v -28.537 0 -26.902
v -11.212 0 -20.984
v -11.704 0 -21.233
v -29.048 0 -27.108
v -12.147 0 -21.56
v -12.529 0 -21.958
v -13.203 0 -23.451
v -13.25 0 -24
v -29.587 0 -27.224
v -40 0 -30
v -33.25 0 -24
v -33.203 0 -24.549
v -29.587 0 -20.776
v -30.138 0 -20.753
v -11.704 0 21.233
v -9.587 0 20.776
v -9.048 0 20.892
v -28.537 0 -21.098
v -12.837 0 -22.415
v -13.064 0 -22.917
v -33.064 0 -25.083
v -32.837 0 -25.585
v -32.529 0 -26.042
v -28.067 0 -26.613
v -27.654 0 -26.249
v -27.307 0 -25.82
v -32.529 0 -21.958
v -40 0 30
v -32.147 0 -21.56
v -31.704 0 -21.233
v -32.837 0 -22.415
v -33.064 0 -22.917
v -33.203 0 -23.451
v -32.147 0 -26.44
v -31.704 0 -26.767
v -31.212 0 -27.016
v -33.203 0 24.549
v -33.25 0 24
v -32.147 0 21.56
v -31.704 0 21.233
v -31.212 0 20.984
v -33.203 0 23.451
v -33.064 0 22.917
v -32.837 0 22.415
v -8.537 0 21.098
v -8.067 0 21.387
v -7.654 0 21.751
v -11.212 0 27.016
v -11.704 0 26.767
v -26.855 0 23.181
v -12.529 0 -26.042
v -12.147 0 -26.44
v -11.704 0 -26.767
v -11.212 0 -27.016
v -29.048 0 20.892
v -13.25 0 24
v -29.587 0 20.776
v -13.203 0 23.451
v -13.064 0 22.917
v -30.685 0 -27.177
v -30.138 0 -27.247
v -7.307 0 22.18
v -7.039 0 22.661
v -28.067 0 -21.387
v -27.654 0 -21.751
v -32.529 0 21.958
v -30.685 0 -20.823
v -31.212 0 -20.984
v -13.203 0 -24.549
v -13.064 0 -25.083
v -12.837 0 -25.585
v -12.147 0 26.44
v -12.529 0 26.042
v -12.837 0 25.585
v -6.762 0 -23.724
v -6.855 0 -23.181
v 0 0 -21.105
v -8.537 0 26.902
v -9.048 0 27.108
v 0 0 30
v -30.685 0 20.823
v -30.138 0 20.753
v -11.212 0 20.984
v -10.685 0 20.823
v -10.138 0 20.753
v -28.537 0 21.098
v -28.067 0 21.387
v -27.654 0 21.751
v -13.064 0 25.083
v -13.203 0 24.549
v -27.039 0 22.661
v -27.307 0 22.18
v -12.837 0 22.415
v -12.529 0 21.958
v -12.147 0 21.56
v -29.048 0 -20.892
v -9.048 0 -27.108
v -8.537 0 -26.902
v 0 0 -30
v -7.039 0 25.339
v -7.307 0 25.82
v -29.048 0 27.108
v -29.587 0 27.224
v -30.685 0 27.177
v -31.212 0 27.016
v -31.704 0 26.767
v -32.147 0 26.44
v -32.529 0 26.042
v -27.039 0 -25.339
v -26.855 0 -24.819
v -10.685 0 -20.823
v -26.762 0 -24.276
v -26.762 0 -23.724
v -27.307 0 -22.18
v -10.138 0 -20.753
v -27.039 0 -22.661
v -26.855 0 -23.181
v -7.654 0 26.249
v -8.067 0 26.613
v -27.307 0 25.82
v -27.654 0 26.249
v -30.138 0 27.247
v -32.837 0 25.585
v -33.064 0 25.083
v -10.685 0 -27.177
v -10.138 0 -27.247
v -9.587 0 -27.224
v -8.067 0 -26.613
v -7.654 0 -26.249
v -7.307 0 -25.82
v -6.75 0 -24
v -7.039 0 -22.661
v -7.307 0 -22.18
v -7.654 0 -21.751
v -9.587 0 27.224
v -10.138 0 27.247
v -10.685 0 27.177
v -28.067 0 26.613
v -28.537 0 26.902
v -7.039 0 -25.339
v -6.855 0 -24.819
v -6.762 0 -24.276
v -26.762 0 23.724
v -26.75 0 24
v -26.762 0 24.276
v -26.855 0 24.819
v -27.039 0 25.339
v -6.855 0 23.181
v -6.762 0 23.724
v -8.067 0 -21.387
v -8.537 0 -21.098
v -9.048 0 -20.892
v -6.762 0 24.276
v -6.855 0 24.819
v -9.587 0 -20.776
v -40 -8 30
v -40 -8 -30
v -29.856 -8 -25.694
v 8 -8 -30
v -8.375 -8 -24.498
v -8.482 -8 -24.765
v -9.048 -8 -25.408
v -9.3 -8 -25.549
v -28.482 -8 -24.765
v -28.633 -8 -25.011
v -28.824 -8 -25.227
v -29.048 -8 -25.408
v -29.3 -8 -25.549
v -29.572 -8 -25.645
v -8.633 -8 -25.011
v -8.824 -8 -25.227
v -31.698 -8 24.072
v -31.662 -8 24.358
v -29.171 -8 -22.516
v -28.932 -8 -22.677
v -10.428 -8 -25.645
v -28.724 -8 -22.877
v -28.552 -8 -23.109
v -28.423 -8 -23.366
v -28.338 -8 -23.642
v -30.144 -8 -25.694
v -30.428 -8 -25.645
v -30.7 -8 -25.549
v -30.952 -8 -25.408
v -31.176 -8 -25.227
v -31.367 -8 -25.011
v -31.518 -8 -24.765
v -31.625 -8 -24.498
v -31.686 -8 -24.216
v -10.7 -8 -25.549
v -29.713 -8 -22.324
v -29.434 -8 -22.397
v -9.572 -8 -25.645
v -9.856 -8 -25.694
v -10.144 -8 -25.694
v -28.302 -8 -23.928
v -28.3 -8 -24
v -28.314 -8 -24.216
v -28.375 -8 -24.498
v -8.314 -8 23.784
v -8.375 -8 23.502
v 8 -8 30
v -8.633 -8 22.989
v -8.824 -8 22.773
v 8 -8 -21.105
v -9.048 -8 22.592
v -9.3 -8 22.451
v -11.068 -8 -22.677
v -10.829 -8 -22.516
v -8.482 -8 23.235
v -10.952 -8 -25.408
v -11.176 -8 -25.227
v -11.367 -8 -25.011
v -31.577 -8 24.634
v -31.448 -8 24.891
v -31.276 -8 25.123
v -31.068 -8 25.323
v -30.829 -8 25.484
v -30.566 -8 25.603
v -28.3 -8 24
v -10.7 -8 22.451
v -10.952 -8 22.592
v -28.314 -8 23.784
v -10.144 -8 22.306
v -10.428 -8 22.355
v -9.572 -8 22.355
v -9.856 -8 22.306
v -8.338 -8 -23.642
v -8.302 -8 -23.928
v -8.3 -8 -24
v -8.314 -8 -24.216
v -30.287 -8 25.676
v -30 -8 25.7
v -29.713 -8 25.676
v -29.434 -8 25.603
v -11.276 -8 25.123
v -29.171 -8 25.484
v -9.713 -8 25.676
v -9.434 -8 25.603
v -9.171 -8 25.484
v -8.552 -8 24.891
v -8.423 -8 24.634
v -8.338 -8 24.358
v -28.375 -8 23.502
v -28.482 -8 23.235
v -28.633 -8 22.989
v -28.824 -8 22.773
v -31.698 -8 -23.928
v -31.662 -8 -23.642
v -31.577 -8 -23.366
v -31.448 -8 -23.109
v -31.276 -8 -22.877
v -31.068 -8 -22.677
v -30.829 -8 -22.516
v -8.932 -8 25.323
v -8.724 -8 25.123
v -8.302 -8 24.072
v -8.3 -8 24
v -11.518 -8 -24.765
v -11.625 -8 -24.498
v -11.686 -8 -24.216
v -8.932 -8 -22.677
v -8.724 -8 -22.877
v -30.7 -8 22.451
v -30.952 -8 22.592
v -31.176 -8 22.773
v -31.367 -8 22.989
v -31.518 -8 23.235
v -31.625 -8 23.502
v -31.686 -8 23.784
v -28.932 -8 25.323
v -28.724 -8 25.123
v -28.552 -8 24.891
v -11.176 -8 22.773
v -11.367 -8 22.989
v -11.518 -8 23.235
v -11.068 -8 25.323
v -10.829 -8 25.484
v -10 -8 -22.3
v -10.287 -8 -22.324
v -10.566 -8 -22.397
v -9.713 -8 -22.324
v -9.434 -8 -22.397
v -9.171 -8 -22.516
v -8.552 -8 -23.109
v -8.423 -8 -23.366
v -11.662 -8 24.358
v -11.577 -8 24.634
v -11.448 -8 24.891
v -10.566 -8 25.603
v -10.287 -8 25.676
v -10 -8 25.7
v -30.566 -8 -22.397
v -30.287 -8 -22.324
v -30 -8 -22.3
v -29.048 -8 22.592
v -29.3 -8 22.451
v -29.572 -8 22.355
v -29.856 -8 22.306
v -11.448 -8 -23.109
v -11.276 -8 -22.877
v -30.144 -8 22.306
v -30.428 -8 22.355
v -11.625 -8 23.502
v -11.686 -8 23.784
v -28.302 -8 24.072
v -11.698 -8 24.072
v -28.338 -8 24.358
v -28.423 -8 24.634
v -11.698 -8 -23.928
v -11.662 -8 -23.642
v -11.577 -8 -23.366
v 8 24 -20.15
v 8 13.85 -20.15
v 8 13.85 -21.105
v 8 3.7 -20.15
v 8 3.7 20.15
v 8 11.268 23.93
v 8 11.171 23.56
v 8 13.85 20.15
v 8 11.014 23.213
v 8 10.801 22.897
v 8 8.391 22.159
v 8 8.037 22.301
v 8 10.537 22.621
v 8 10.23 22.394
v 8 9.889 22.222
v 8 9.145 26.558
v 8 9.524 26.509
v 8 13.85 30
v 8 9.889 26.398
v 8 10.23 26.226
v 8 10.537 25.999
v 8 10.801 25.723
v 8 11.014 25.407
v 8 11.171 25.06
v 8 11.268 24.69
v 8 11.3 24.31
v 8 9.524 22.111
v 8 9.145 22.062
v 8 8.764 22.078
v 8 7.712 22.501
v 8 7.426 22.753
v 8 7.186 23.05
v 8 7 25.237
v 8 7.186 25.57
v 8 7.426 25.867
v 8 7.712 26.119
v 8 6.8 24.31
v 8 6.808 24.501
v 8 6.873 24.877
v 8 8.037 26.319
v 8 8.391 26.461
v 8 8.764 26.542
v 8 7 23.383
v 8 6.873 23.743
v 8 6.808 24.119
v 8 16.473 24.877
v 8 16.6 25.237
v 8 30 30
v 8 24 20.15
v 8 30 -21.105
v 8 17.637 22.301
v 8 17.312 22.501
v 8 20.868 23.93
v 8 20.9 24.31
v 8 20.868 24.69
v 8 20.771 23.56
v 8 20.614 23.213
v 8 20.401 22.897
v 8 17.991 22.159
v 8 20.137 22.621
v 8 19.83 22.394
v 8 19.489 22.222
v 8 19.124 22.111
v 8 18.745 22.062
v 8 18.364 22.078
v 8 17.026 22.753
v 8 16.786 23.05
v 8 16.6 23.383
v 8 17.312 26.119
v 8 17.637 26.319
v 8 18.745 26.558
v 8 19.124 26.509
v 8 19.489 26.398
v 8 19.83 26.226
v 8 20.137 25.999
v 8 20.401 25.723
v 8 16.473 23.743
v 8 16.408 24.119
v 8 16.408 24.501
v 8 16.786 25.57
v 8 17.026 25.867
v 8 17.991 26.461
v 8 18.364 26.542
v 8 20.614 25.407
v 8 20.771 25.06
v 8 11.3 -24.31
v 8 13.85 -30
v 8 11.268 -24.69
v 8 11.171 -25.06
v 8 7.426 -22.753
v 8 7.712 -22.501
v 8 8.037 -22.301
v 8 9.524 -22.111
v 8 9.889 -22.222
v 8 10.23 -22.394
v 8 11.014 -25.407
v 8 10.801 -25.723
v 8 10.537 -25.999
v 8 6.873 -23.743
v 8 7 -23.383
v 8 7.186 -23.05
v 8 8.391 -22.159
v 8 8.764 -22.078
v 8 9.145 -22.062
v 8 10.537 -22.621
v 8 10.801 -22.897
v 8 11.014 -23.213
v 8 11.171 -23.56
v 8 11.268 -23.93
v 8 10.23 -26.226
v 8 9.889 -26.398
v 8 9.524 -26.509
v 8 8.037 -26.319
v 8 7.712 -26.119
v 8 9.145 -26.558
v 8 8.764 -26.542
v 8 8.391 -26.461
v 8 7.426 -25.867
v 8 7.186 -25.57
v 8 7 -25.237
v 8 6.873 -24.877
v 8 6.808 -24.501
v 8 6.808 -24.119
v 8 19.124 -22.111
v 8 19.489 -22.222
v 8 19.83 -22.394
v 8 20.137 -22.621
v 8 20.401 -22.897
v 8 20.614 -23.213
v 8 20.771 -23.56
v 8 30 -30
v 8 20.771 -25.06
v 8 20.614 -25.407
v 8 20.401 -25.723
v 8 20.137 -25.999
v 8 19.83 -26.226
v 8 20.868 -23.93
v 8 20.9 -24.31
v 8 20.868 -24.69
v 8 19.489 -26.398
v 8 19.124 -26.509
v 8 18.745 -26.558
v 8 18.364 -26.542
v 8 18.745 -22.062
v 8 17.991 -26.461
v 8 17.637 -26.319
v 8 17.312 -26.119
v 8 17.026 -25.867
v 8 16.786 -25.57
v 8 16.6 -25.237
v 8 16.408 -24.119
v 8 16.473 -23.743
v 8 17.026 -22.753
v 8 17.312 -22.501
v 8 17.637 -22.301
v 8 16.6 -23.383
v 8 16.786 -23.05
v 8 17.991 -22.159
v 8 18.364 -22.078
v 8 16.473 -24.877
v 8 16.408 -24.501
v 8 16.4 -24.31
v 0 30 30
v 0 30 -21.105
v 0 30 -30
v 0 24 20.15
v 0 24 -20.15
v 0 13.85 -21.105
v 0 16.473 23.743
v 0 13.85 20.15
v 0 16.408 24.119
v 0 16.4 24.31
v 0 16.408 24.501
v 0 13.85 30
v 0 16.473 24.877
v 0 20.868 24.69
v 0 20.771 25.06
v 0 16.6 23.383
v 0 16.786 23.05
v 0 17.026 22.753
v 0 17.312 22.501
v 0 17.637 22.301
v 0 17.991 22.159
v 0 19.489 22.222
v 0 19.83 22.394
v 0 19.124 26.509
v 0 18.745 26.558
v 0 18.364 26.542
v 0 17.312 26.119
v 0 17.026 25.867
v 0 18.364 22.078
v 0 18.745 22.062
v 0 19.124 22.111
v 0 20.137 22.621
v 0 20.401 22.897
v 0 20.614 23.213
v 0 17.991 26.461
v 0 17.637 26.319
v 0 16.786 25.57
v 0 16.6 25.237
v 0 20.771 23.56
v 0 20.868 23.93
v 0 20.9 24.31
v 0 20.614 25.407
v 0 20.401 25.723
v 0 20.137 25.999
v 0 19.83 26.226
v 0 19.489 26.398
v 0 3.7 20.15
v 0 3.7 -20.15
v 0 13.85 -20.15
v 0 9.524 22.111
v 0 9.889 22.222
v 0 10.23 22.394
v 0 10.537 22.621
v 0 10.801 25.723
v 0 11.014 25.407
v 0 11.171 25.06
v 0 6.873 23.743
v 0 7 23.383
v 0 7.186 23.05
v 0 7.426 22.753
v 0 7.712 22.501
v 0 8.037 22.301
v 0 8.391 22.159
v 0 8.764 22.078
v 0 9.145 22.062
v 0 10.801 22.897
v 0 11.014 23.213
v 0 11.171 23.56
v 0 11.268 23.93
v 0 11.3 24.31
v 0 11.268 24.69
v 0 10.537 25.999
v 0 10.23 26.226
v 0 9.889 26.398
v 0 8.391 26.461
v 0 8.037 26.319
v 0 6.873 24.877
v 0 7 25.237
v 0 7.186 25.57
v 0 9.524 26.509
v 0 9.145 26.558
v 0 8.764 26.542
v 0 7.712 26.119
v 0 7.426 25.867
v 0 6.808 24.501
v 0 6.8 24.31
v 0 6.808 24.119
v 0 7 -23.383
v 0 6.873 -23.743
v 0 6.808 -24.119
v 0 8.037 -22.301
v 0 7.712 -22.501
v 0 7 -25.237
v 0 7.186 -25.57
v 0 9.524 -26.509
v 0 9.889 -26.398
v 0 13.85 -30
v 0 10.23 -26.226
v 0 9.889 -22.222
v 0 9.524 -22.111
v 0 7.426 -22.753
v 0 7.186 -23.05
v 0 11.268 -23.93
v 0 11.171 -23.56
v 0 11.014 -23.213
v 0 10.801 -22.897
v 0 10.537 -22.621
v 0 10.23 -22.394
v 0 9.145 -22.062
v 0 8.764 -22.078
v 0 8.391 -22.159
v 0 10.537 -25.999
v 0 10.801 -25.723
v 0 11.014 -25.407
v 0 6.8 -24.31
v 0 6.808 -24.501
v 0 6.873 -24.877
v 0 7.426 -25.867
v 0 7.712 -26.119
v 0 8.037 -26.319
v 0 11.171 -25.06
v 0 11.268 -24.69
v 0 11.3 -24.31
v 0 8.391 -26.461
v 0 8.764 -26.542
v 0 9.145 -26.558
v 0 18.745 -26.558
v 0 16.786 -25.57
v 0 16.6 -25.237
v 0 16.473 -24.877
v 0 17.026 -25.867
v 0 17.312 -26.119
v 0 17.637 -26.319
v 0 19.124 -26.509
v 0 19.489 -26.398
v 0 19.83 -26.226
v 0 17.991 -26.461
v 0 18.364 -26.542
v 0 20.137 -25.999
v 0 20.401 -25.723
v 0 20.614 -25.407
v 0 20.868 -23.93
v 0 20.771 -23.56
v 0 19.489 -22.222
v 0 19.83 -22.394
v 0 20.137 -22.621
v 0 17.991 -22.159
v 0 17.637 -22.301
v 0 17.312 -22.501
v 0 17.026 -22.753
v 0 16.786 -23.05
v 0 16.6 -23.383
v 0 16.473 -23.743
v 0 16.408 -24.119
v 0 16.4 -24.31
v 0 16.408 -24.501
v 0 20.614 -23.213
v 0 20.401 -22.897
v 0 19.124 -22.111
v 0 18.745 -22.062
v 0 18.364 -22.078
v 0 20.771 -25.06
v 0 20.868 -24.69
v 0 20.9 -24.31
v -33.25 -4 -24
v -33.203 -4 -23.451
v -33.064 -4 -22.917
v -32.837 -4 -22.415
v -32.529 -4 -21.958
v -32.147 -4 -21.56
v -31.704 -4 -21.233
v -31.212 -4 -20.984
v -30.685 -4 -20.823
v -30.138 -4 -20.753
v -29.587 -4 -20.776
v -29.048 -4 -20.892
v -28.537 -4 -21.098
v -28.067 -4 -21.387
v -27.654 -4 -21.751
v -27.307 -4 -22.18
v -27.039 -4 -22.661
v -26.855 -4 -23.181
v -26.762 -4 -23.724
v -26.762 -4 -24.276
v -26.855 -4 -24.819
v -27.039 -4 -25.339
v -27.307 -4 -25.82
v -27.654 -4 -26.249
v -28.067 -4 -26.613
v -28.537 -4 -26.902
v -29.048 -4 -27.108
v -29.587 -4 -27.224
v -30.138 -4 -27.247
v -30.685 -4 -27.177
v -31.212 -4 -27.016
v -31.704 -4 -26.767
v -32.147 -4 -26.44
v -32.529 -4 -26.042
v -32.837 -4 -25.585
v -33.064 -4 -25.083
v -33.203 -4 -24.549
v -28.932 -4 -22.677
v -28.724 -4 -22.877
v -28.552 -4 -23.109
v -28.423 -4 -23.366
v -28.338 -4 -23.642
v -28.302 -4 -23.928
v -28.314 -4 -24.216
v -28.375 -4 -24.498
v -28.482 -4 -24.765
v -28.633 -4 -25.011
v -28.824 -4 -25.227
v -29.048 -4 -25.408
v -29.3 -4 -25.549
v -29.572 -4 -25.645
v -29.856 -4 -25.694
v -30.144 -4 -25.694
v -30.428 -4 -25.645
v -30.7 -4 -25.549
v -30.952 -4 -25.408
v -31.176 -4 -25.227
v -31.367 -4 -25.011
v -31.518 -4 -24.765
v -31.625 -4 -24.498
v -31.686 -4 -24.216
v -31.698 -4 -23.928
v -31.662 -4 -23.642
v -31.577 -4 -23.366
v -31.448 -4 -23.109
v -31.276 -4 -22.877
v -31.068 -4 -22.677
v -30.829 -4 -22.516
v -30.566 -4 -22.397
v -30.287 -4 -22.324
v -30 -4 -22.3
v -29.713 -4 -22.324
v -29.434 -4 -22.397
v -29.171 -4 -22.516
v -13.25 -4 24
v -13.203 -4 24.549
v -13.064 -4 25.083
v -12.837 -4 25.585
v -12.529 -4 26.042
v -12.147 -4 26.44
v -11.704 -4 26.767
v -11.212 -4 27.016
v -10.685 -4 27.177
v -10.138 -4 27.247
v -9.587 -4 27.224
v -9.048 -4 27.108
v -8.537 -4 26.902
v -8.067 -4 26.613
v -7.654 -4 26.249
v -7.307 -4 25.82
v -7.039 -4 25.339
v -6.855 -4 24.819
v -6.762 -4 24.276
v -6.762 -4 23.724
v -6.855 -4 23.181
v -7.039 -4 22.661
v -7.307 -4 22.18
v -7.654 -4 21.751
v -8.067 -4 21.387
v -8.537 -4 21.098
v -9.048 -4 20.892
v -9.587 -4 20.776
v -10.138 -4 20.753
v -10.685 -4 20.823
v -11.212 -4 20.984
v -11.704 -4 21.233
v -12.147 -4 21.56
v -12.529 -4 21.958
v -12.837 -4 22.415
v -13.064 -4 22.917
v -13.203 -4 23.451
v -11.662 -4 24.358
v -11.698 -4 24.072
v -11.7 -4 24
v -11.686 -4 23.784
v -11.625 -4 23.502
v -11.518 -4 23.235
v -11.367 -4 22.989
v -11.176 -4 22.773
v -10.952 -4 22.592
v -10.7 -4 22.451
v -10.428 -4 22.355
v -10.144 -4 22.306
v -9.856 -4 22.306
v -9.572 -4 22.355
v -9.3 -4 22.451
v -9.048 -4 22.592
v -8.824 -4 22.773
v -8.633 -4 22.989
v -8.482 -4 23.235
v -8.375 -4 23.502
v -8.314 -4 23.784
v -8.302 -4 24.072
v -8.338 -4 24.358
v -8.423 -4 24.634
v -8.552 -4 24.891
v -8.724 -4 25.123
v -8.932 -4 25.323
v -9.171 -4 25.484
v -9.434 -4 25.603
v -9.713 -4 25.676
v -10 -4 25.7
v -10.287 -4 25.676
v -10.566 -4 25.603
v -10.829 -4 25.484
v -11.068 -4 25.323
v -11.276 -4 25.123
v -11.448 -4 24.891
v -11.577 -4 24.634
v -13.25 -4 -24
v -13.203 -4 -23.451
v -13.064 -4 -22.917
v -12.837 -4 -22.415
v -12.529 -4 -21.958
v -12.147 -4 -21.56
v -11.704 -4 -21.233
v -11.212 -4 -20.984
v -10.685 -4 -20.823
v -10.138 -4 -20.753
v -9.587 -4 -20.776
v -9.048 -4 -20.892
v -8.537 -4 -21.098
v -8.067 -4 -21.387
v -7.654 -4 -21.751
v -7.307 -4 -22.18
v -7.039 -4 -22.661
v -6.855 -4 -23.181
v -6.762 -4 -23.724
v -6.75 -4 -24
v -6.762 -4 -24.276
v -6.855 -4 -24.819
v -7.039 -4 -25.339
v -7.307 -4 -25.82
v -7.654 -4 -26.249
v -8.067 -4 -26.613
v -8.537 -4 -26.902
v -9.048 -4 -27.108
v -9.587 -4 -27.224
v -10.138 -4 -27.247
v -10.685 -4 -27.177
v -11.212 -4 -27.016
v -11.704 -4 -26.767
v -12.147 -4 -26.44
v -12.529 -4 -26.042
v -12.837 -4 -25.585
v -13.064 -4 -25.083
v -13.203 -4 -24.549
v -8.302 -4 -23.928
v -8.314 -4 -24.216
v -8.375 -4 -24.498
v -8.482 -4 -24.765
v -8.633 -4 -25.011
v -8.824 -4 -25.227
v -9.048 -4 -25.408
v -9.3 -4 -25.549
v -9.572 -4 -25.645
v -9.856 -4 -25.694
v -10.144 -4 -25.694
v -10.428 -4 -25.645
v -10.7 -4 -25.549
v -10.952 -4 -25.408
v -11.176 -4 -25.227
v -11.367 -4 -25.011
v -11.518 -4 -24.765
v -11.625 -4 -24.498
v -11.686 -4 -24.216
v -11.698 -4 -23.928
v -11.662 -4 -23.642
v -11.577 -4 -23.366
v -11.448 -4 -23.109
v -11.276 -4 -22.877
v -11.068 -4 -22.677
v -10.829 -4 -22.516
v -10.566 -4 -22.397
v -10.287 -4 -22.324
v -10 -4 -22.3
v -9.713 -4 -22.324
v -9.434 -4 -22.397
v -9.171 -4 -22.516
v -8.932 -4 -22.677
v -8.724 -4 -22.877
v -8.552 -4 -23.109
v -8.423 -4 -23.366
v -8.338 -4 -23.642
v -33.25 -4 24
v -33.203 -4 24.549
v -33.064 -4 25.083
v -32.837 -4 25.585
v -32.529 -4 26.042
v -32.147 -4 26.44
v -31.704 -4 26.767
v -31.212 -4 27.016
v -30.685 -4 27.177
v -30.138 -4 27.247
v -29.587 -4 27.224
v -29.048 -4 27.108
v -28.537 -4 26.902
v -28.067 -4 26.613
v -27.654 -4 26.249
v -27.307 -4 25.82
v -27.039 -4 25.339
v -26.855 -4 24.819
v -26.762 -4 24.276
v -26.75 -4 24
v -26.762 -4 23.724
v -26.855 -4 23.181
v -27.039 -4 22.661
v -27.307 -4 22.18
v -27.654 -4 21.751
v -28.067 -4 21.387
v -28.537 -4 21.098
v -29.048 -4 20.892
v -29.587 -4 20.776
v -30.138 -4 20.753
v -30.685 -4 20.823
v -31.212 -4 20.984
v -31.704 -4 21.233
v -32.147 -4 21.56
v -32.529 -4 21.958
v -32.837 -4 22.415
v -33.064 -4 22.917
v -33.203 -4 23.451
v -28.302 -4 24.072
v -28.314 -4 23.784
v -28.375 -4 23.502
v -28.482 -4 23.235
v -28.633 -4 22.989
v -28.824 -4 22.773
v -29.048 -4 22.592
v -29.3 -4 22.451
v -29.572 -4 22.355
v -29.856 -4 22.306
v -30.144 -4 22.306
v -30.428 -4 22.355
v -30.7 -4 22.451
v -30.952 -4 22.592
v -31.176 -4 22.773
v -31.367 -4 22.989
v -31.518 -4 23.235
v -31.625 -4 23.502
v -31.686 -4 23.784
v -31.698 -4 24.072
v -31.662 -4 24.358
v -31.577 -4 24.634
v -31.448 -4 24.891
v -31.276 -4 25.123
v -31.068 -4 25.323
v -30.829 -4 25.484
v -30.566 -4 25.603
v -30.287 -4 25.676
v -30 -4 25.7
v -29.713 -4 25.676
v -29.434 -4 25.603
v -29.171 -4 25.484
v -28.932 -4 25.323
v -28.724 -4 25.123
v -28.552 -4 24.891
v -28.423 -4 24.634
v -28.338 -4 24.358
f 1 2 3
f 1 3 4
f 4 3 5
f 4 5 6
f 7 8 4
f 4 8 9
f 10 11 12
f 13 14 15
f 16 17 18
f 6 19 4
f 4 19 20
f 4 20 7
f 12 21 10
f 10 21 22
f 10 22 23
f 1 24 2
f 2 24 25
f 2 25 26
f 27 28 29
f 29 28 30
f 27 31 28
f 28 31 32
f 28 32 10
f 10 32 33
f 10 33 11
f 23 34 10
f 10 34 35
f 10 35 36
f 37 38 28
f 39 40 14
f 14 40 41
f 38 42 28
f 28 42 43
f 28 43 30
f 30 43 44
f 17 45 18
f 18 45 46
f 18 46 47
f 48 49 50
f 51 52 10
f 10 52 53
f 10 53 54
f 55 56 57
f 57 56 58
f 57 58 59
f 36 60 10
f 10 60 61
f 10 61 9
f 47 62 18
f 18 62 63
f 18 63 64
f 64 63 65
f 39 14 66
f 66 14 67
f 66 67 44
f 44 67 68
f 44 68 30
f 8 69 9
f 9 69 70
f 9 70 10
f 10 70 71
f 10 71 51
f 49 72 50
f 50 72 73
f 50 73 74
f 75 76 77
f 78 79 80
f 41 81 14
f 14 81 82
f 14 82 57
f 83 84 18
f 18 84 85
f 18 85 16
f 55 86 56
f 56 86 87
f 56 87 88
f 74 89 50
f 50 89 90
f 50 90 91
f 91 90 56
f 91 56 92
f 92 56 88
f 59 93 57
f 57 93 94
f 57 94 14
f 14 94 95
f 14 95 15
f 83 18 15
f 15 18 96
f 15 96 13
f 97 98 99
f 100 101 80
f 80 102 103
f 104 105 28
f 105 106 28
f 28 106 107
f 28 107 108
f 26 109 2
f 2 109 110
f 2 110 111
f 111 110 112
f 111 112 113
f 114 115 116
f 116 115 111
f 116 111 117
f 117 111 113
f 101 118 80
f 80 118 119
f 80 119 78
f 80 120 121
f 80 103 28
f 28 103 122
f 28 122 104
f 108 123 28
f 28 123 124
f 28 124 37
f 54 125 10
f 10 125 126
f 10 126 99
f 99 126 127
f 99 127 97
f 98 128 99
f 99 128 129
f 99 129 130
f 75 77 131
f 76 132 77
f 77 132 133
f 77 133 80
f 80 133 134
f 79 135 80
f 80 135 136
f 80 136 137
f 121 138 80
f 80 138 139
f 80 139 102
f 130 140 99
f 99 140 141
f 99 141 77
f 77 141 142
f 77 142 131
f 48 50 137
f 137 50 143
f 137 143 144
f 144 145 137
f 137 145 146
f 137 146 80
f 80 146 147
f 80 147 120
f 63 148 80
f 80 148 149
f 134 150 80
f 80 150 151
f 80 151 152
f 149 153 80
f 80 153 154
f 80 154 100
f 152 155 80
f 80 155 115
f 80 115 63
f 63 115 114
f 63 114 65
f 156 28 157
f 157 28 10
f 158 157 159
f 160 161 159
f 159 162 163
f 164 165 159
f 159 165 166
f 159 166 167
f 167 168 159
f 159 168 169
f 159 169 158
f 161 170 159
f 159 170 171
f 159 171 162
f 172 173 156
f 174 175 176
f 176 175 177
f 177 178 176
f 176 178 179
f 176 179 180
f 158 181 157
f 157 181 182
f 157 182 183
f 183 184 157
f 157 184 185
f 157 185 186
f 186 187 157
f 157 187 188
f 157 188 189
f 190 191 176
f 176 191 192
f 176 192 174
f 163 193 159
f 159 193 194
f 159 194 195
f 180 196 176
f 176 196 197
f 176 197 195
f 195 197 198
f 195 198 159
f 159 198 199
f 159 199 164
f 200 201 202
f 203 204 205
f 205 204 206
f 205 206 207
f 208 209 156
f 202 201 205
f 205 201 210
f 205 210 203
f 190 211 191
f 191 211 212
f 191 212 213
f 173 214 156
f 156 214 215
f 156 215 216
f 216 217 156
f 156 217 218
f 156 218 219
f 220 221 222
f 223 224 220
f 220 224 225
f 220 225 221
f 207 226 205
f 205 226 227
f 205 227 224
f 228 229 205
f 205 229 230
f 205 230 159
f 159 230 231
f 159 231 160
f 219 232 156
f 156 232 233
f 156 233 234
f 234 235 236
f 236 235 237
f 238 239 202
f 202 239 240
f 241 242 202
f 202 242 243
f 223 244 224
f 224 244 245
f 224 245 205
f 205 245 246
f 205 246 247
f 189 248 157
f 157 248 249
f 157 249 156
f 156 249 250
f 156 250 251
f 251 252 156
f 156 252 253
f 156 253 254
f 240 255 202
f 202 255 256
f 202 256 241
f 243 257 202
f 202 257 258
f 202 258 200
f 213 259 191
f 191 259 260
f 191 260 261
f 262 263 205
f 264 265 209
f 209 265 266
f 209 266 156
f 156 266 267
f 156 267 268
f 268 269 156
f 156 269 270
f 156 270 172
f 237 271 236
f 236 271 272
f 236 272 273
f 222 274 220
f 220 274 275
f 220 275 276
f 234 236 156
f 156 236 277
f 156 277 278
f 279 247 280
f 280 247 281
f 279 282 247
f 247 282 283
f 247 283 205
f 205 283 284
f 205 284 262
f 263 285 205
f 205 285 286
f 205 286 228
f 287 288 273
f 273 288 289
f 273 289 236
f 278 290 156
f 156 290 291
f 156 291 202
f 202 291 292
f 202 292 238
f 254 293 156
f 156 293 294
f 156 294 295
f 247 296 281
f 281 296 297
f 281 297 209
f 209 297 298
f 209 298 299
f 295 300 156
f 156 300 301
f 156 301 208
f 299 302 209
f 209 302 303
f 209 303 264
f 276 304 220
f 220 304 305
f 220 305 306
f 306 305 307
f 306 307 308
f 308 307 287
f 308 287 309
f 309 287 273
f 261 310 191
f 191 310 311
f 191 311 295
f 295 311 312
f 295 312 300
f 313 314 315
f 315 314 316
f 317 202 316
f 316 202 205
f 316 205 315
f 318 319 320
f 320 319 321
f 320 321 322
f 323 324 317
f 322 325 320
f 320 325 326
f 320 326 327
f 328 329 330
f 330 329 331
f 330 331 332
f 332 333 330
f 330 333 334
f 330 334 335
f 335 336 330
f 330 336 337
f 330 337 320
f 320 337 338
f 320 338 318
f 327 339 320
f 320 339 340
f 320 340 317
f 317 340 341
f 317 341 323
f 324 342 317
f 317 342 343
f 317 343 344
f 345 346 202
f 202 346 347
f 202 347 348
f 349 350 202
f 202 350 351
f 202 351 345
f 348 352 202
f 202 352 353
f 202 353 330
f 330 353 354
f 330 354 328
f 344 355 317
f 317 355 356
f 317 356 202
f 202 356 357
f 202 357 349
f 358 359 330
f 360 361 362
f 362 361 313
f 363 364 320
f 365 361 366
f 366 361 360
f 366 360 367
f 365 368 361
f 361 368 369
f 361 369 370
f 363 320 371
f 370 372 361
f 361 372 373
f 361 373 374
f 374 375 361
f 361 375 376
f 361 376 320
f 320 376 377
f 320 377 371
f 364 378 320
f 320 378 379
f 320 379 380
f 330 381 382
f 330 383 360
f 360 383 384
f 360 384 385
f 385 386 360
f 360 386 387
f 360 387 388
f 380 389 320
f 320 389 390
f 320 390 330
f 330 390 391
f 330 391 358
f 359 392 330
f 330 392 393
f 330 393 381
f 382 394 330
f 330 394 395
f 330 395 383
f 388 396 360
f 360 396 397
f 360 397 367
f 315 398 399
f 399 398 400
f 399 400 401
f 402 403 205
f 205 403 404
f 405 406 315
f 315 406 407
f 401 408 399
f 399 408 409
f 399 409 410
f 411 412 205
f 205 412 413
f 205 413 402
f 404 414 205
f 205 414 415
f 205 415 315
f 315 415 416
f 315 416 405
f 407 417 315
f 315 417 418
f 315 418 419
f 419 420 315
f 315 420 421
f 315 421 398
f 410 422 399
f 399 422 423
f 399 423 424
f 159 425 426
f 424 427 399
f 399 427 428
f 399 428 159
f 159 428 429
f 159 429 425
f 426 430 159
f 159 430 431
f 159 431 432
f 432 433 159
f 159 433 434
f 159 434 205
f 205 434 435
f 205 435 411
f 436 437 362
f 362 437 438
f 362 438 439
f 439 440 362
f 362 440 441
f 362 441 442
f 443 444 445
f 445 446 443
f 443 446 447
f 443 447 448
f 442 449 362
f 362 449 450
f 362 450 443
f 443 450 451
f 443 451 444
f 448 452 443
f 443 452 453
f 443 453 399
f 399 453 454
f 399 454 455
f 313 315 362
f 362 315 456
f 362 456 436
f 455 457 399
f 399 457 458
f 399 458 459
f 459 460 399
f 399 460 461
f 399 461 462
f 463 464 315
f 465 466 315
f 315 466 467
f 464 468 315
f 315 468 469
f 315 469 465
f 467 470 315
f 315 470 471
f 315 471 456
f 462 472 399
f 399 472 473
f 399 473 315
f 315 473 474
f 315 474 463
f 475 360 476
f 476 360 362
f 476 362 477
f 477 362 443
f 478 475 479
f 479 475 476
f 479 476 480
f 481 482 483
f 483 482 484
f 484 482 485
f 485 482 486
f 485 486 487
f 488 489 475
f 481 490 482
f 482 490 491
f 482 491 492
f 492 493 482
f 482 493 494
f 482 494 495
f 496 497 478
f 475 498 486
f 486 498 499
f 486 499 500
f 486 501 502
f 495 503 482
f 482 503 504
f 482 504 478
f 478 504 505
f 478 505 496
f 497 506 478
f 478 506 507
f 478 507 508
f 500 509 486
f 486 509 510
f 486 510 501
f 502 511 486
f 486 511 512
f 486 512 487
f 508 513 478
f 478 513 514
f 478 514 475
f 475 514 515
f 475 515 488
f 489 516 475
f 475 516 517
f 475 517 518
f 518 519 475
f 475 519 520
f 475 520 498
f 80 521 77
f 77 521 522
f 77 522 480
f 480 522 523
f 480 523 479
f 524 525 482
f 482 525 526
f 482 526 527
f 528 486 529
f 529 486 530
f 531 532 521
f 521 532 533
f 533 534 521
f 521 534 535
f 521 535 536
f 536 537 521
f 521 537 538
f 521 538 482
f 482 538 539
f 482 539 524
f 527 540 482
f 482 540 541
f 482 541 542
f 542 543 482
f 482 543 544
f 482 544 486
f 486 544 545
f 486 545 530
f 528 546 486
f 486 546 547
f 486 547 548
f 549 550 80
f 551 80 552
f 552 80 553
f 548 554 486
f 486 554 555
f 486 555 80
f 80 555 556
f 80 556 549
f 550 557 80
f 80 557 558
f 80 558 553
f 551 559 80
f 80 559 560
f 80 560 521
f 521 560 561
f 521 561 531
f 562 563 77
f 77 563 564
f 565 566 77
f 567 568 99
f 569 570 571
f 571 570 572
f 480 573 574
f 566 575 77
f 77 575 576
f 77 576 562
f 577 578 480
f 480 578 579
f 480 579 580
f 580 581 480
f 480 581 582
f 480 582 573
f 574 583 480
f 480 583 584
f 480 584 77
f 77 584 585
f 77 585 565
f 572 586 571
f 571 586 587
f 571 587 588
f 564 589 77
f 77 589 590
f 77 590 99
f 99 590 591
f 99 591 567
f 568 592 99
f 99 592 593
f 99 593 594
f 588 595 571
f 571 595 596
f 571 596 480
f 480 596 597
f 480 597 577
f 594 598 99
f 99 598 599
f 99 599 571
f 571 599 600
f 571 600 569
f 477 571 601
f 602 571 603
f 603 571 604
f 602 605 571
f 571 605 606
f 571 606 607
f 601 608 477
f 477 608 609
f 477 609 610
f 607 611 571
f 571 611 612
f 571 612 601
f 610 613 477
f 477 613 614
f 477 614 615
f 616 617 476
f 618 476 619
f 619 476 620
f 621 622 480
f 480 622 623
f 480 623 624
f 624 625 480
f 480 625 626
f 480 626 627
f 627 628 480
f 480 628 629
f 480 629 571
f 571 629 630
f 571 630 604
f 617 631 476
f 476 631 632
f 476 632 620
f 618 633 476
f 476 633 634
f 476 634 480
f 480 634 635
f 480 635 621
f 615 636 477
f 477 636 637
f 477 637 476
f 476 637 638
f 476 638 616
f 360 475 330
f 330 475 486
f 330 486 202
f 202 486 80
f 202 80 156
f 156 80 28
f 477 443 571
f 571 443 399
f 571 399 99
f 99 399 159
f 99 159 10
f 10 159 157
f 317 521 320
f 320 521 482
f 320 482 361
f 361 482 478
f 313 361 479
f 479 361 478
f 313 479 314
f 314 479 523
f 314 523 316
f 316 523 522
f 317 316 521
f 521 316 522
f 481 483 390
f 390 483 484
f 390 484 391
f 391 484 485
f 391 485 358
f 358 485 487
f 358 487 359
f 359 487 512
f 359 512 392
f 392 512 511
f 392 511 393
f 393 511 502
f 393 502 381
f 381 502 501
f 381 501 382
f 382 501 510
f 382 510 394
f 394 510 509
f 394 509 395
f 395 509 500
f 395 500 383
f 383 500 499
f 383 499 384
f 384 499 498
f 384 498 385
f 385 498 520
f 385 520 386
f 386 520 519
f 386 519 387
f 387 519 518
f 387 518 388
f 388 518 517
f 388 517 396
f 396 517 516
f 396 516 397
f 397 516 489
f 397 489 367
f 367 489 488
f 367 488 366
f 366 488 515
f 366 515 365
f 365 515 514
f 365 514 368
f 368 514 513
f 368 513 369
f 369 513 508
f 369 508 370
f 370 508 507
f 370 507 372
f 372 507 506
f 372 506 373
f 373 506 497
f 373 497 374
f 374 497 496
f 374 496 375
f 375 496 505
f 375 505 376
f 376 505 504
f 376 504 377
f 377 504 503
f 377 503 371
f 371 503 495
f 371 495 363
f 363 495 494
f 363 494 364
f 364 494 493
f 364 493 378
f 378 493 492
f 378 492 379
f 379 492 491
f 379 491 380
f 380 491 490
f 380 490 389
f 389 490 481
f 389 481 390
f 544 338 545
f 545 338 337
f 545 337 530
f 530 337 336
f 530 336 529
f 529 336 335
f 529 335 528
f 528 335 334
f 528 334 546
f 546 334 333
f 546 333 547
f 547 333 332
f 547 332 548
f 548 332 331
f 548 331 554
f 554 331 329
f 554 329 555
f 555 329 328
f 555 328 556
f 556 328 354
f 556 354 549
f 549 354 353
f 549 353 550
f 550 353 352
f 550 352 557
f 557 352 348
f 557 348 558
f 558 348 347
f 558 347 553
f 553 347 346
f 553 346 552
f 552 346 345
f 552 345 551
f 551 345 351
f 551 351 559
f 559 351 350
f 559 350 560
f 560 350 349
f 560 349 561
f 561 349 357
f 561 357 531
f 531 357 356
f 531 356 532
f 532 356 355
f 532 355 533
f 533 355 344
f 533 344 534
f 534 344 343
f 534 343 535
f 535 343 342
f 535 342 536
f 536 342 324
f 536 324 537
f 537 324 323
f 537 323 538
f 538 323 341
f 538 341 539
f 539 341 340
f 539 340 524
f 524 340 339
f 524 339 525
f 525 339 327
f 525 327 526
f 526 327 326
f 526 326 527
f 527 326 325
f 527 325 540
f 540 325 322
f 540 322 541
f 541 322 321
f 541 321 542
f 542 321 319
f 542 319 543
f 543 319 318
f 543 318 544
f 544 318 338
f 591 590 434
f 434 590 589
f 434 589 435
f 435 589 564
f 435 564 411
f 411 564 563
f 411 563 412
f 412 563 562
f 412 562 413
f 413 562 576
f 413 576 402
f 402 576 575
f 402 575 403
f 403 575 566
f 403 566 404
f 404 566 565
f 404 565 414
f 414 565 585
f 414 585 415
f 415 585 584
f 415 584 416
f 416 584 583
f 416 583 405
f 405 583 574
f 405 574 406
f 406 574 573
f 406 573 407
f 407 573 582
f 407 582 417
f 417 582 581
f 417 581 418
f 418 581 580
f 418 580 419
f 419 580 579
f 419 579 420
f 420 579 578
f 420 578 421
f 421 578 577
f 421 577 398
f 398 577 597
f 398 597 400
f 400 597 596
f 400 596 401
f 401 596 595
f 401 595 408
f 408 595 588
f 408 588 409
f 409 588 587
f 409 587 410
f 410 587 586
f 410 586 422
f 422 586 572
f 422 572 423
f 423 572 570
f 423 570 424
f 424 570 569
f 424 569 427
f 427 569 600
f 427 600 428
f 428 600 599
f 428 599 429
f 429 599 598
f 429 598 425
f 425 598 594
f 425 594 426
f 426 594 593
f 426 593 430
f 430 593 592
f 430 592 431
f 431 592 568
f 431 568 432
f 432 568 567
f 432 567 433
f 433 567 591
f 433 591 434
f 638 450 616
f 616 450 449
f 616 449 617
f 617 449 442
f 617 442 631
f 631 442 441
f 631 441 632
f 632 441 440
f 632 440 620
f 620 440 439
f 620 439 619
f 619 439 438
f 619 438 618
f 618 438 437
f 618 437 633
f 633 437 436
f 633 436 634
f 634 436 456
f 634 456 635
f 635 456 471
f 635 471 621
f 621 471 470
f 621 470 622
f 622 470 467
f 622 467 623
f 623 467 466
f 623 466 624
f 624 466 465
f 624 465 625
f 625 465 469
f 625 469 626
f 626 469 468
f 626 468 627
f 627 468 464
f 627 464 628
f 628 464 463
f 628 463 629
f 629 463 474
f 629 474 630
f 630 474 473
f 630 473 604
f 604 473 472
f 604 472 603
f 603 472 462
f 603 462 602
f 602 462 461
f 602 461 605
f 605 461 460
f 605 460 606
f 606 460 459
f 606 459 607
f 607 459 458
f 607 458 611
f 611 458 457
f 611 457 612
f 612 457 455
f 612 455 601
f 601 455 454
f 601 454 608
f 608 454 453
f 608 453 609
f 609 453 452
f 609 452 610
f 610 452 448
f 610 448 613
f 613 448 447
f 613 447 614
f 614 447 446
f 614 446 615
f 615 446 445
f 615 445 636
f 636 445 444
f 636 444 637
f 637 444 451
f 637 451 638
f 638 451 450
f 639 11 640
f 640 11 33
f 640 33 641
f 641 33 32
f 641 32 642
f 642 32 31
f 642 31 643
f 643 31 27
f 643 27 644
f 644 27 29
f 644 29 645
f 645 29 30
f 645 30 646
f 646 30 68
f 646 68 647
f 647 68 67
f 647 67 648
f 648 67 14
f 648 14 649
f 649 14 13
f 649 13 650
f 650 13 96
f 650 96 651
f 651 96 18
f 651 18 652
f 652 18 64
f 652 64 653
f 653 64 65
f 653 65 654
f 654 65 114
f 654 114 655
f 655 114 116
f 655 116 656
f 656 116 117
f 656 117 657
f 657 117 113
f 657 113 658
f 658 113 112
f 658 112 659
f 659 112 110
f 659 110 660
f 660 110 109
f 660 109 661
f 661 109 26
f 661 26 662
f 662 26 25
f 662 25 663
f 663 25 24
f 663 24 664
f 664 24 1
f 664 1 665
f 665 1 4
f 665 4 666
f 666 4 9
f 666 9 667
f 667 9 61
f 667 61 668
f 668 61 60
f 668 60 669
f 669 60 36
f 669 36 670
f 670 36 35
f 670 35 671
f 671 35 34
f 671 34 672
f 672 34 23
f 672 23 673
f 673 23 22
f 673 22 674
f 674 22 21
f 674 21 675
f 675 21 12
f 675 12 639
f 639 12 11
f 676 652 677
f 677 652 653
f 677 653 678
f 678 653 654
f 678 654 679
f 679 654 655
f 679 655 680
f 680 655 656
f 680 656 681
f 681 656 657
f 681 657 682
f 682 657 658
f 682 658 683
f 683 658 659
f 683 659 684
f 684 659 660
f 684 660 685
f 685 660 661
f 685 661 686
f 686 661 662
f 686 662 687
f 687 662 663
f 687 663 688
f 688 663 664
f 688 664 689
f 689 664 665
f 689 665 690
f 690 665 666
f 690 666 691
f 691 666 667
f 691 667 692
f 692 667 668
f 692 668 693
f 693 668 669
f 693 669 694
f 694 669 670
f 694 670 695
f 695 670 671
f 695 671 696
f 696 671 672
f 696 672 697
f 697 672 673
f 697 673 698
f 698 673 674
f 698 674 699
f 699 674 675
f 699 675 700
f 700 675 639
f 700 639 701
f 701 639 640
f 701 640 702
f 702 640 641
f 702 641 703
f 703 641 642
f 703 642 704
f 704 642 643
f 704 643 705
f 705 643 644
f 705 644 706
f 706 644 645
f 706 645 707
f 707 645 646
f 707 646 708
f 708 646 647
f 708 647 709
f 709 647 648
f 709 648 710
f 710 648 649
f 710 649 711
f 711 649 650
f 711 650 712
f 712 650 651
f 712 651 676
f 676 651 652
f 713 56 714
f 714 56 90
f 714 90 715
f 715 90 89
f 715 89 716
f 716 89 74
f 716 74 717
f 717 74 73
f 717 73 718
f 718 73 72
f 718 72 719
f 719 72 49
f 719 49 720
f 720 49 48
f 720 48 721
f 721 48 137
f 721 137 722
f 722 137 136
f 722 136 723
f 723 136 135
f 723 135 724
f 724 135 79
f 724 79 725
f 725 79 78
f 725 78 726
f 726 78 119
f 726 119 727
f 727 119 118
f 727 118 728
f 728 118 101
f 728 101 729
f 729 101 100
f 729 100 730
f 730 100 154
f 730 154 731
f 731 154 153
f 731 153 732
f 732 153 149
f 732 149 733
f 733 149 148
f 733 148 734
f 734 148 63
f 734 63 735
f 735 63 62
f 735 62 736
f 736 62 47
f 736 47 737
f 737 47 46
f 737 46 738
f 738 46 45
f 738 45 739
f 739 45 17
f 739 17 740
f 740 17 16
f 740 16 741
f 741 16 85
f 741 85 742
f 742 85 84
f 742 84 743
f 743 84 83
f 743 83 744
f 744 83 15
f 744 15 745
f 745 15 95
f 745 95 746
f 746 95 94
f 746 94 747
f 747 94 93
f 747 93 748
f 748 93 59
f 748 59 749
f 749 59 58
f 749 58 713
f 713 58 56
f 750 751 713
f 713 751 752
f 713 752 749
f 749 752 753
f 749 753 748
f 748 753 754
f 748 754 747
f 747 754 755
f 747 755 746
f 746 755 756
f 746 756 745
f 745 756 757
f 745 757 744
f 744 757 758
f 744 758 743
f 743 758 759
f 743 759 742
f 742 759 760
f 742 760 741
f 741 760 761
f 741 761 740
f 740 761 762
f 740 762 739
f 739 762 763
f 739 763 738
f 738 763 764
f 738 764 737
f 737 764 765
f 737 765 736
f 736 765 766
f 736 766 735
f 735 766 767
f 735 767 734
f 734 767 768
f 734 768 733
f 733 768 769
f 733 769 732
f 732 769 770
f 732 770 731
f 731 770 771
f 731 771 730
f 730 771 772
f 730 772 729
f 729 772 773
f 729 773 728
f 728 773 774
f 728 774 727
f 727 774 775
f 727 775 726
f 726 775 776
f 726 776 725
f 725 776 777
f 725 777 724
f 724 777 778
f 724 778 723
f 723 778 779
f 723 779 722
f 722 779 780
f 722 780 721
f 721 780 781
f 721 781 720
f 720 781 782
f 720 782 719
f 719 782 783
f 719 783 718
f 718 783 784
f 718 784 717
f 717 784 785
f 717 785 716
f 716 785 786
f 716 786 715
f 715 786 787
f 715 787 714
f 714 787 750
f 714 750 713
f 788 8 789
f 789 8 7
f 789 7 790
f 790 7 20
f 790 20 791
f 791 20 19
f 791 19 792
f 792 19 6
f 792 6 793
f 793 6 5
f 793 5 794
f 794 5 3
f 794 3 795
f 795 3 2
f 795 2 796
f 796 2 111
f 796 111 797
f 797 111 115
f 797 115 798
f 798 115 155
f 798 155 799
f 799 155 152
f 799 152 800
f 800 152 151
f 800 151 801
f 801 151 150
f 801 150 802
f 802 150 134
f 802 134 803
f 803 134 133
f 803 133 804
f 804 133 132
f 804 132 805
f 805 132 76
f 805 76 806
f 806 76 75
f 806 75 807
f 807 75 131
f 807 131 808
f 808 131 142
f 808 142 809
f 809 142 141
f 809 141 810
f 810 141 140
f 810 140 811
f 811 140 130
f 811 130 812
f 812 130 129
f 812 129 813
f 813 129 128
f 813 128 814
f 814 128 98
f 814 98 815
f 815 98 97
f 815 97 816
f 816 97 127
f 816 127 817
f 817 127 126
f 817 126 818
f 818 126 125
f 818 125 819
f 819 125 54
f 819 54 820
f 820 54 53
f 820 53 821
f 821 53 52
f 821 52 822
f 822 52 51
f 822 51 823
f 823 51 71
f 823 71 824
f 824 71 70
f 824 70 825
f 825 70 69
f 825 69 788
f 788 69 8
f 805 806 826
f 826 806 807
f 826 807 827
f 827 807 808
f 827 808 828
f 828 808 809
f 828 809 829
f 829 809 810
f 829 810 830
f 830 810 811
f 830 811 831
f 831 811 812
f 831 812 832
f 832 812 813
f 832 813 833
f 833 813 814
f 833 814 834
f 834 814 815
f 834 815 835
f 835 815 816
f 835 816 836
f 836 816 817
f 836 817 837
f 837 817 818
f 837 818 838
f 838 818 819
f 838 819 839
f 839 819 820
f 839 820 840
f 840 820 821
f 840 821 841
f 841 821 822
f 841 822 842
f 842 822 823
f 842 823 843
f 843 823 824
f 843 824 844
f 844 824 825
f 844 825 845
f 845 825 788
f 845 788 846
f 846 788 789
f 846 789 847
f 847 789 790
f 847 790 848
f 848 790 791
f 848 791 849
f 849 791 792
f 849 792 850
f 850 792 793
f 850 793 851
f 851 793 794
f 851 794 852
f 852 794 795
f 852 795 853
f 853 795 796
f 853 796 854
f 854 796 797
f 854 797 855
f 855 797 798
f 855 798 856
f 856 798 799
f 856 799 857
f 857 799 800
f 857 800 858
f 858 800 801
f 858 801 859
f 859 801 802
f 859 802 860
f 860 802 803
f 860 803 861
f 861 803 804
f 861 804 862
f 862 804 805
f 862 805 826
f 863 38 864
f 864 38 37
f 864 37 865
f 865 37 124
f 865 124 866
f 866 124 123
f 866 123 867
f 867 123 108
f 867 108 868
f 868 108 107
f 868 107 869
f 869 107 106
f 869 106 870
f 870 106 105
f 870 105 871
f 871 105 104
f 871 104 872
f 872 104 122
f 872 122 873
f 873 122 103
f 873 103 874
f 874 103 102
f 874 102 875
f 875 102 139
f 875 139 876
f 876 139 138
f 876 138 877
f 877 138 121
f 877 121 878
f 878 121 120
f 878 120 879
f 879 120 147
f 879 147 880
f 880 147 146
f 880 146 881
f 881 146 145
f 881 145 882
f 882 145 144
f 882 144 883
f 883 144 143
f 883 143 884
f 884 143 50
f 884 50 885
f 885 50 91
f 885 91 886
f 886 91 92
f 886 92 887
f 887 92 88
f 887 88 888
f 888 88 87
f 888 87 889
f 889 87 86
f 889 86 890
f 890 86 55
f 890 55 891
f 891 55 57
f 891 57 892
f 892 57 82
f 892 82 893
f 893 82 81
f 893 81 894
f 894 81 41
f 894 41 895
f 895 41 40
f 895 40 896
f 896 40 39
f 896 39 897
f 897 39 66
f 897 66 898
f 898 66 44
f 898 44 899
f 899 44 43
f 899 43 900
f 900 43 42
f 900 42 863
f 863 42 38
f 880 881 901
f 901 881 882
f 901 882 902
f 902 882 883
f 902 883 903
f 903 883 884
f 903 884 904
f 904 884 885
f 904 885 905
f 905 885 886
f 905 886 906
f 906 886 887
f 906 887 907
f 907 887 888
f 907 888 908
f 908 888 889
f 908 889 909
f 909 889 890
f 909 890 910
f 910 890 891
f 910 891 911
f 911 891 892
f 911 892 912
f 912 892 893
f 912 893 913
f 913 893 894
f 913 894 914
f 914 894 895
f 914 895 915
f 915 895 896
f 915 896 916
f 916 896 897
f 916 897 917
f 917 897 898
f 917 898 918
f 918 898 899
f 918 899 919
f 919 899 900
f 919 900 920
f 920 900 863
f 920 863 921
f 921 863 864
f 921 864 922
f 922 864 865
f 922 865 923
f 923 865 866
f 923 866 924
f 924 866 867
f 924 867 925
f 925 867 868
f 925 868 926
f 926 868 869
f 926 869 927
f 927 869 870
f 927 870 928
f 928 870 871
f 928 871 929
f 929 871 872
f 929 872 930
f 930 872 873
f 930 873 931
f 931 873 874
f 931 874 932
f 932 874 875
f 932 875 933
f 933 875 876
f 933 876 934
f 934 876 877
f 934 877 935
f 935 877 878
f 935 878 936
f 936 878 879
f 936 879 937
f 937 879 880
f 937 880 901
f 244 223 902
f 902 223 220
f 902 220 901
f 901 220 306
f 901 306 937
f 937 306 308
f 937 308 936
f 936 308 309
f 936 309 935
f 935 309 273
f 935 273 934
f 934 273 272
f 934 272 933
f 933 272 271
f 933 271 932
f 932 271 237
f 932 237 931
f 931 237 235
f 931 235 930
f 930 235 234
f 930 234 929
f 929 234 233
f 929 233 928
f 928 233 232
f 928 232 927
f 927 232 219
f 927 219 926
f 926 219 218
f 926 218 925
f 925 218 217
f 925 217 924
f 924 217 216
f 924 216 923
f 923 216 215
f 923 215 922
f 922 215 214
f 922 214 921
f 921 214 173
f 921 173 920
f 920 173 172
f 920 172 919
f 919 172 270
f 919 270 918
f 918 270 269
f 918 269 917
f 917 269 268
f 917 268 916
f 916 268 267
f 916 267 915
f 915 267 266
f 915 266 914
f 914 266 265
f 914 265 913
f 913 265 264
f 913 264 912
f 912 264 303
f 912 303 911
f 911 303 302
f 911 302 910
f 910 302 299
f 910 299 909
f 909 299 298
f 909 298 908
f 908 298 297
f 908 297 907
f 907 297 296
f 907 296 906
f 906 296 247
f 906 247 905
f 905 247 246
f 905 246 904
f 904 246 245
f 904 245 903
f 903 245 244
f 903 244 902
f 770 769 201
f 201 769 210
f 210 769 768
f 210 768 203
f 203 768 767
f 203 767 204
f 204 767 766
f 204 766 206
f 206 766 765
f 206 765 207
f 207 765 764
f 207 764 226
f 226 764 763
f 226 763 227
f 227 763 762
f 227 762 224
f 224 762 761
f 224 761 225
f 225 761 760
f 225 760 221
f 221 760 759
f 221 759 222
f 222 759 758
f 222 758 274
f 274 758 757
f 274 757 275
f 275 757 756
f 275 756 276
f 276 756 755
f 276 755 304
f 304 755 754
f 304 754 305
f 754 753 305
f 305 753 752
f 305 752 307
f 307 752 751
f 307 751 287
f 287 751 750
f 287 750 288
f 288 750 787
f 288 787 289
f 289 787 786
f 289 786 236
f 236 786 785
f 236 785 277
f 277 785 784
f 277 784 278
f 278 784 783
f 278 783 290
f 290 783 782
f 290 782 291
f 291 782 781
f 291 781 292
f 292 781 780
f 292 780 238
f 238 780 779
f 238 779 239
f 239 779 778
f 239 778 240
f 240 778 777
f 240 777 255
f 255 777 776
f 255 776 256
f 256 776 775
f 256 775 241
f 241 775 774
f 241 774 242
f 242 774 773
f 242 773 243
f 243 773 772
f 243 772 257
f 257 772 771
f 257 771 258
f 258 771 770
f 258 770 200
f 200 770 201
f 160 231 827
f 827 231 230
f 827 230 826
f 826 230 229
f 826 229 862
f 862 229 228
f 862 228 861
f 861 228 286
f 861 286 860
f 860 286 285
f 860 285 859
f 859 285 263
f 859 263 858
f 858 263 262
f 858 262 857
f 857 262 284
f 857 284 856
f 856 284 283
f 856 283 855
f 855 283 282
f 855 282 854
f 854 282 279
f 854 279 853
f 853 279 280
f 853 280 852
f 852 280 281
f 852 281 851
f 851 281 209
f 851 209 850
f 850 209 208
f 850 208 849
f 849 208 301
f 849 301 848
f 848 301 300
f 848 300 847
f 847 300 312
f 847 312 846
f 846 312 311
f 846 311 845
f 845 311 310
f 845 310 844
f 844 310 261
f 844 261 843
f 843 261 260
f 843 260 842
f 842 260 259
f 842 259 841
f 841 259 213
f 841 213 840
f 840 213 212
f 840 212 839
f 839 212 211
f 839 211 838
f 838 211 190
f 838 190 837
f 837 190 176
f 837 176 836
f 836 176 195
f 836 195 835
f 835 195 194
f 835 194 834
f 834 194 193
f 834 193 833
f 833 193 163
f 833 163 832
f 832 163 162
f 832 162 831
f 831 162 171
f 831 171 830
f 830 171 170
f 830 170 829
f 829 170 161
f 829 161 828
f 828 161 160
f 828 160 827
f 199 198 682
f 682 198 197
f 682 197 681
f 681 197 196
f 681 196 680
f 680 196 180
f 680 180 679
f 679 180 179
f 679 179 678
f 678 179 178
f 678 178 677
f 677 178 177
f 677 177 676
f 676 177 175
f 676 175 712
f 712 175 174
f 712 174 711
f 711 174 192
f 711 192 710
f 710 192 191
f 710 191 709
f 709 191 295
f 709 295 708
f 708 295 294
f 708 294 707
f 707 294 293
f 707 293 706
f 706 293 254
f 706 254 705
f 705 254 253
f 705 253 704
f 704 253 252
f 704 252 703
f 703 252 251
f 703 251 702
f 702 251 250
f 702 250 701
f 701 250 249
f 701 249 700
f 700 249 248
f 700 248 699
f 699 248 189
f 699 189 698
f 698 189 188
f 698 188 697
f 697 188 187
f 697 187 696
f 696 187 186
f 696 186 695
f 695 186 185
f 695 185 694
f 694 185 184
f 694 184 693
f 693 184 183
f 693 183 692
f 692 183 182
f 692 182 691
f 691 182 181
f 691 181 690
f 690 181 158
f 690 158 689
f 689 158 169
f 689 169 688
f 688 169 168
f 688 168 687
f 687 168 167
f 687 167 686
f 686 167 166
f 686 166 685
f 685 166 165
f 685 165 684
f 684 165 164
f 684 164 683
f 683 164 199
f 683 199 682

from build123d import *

# Parameters (mm, degrees)
CROQUIS1_W                                 = 40
CROQUIS1_H                                 = 8
SALIENTE_EXTRUIR1_DEPTH                    = 30
CROQUIS2_W                                 = 40.3
CROQUIS2_H                                 = 20.3
CORTAR_EXTRUIR1_DEPTH                      = 60
CROQUIS3_R                                 = 2.25
CROQUIS3_W                                 = 40.3
CROQUIS3_H                                 = 20.3
CORTAR_EXTRUIR2_DEPTH                      = 60
CROQUIS4_R                                 = 3.25
CORTAR_EXTRUIR3_DEPTH                      = 4
TALADRO_DE_MARGEN_PARA_M31_D               = 3.4
TALADRO_DE_MARGEN_PARA_M31_DEPTH           = 11.5
TALADRO_DE_MARGEN_PARA_M31_TIP             = 1.021463052
TALADRO_DE_MARGEN_PARA_M31_ON_FACE_2_D     = 3.4
TALADRO_DE_MARGEN_PARA_M31_ON_FACE_2_DEPTH = 11.5
TALADRO_DE_MARGEN_PARA_M31_ON_FACE_2_TIP   = 1.021463052


with BuildPart() as part:
    # Croquis1 → Saliente-Extruir1 (new, symmetric)
    with BuildSketch(Plane.XY):
        with Locations((-20, -4)):
            Rectangle(CROQUIS1_W, CROQUIS1_H)
        Polygon((0, 30), (0, 0), (0, -8), (8, -8), (8, 30), align=None)
    extrude(amount=SALIENTE_EXTRUIR1_DEPTH, both=True)

    # Croquis2 → Cortar-Extruir1 (cut)
    with BuildSketch(Plane(origin=(8, 0, 0), x_dir=(0, 0, -1), z_dir=(1, 0, 0))):
        with Locations((0, 13.85)):
            Rectangle(CROQUIS2_W, CROQUIS2_H)
    extrude(amount=-CORTAR_EXTRUIR1_DEPTH, mode=Mode.SUBTRACT)

    # Croquis3 → Cortar-Extruir2 (cut)
    with BuildSketch(Plane(origin=(8, 0, 0), x_dir=(0, 0, -1), z_dir=(1, 0, 0))):
        with Locations(Location((-24.31, 18.65, 0), (0, 0, 90))):
            Circle(CROQUIS3_R)
        with Locations(Location((-24.31, 9.05, 0), (0, 0, 270))):
            Circle(CROQUIS3_R)
        with Locations(Location((24.31, 9.05, 0), (0, 0, 90))):
            Circle(CROQUIS3_R)
        with Locations(Location((24.31, 18.65, 0), (0, 0, 270))):
            Circle(CROQUIS3_R)
        with Locations((0, 13.85)):
            Rectangle(CROQUIS3_W, CROQUIS3_H)
    extrude(amount=-CORTAR_EXTRUIR2_DEPTH, mode=Mode.SUBTRACT)

    # Croquis4 → Cortar-Extruir3 (cut)
    with BuildSketch(Plane(origin=(0, 0, 0), x_dir=(1, 0, 0), z_dir=(0, 1, 0))):
        with Locations(Location((-30, 24, 0), (0, 0, 180))):
            Circle(CROQUIS4_R)
        with Locations((-10, 24)):
            Circle(CROQUIS4_R)
        with Locations(Location((-10, -24, 0), (0, 0, 180))):
            Circle(CROQUIS4_R)
        with Locations((-30, -24)):
            Circle(CROQUIS4_R)
    extrude(amount=-CORTAR_EXTRUIR3_DEPTH, mode=Mode.SUBTRACT)

    # Taladro de margen para M31
    with Locations(Plane(origin=(-30, -4, -24), x_dir=(1, 0, 0), z_dir=(0, 1, 0))):
        with Locations((0, 0), (20, 0), (0, -48)):
            Hole(TALADRO_DE_MARGEN_PARA_M31_D / 2, depth=TALADRO_DE_MARGEN_PARA_M31_DEPTH)
            with Locations((0, 0, -(TALADRO_DE_MARGEN_PARA_M31_DEPTH + TALADRO_DE_MARGEN_PARA_M31_TIP / 2))):  # 118° drill point
                Cone(0, TALADRO_DE_MARGEN_PARA_M31_D / 2, TALADRO_DE_MARGEN_PARA_M31_TIP, mode=Mode.SUBTRACT)

    # Taladro de margen para M31 on face 2
    with Locations(Plane(origin=(-10, 0, 24), x_dir=(1, 0, 0), z_dir=(0, 1, 0))):
        with Locations((0, 0)):
            Hole(TALADRO_DE_MARGEN_PARA_M31_ON_FACE_2_D / 2, depth=TALADRO_DE_MARGEN_PARA_M31_ON_FACE_2_DEPTH)
            with Locations((0, 0, -(TALADRO_DE_MARGEN_PARA_M31_ON_FACE_2_DEPTH + TALADRO_DE_MARGEN_PARA_M31_ON_FACE_2_TIP / 2))):  # 118° drill point
                Cone(0, TALADRO_DE_MARGEN_PARA_M31_ON_FACE_2_D / 2, TALADRO_DE_MARGEN_PARA_M31_ON_FACE_2_TIP, mode=Mode.SUBTRACT)


solid = part.part
